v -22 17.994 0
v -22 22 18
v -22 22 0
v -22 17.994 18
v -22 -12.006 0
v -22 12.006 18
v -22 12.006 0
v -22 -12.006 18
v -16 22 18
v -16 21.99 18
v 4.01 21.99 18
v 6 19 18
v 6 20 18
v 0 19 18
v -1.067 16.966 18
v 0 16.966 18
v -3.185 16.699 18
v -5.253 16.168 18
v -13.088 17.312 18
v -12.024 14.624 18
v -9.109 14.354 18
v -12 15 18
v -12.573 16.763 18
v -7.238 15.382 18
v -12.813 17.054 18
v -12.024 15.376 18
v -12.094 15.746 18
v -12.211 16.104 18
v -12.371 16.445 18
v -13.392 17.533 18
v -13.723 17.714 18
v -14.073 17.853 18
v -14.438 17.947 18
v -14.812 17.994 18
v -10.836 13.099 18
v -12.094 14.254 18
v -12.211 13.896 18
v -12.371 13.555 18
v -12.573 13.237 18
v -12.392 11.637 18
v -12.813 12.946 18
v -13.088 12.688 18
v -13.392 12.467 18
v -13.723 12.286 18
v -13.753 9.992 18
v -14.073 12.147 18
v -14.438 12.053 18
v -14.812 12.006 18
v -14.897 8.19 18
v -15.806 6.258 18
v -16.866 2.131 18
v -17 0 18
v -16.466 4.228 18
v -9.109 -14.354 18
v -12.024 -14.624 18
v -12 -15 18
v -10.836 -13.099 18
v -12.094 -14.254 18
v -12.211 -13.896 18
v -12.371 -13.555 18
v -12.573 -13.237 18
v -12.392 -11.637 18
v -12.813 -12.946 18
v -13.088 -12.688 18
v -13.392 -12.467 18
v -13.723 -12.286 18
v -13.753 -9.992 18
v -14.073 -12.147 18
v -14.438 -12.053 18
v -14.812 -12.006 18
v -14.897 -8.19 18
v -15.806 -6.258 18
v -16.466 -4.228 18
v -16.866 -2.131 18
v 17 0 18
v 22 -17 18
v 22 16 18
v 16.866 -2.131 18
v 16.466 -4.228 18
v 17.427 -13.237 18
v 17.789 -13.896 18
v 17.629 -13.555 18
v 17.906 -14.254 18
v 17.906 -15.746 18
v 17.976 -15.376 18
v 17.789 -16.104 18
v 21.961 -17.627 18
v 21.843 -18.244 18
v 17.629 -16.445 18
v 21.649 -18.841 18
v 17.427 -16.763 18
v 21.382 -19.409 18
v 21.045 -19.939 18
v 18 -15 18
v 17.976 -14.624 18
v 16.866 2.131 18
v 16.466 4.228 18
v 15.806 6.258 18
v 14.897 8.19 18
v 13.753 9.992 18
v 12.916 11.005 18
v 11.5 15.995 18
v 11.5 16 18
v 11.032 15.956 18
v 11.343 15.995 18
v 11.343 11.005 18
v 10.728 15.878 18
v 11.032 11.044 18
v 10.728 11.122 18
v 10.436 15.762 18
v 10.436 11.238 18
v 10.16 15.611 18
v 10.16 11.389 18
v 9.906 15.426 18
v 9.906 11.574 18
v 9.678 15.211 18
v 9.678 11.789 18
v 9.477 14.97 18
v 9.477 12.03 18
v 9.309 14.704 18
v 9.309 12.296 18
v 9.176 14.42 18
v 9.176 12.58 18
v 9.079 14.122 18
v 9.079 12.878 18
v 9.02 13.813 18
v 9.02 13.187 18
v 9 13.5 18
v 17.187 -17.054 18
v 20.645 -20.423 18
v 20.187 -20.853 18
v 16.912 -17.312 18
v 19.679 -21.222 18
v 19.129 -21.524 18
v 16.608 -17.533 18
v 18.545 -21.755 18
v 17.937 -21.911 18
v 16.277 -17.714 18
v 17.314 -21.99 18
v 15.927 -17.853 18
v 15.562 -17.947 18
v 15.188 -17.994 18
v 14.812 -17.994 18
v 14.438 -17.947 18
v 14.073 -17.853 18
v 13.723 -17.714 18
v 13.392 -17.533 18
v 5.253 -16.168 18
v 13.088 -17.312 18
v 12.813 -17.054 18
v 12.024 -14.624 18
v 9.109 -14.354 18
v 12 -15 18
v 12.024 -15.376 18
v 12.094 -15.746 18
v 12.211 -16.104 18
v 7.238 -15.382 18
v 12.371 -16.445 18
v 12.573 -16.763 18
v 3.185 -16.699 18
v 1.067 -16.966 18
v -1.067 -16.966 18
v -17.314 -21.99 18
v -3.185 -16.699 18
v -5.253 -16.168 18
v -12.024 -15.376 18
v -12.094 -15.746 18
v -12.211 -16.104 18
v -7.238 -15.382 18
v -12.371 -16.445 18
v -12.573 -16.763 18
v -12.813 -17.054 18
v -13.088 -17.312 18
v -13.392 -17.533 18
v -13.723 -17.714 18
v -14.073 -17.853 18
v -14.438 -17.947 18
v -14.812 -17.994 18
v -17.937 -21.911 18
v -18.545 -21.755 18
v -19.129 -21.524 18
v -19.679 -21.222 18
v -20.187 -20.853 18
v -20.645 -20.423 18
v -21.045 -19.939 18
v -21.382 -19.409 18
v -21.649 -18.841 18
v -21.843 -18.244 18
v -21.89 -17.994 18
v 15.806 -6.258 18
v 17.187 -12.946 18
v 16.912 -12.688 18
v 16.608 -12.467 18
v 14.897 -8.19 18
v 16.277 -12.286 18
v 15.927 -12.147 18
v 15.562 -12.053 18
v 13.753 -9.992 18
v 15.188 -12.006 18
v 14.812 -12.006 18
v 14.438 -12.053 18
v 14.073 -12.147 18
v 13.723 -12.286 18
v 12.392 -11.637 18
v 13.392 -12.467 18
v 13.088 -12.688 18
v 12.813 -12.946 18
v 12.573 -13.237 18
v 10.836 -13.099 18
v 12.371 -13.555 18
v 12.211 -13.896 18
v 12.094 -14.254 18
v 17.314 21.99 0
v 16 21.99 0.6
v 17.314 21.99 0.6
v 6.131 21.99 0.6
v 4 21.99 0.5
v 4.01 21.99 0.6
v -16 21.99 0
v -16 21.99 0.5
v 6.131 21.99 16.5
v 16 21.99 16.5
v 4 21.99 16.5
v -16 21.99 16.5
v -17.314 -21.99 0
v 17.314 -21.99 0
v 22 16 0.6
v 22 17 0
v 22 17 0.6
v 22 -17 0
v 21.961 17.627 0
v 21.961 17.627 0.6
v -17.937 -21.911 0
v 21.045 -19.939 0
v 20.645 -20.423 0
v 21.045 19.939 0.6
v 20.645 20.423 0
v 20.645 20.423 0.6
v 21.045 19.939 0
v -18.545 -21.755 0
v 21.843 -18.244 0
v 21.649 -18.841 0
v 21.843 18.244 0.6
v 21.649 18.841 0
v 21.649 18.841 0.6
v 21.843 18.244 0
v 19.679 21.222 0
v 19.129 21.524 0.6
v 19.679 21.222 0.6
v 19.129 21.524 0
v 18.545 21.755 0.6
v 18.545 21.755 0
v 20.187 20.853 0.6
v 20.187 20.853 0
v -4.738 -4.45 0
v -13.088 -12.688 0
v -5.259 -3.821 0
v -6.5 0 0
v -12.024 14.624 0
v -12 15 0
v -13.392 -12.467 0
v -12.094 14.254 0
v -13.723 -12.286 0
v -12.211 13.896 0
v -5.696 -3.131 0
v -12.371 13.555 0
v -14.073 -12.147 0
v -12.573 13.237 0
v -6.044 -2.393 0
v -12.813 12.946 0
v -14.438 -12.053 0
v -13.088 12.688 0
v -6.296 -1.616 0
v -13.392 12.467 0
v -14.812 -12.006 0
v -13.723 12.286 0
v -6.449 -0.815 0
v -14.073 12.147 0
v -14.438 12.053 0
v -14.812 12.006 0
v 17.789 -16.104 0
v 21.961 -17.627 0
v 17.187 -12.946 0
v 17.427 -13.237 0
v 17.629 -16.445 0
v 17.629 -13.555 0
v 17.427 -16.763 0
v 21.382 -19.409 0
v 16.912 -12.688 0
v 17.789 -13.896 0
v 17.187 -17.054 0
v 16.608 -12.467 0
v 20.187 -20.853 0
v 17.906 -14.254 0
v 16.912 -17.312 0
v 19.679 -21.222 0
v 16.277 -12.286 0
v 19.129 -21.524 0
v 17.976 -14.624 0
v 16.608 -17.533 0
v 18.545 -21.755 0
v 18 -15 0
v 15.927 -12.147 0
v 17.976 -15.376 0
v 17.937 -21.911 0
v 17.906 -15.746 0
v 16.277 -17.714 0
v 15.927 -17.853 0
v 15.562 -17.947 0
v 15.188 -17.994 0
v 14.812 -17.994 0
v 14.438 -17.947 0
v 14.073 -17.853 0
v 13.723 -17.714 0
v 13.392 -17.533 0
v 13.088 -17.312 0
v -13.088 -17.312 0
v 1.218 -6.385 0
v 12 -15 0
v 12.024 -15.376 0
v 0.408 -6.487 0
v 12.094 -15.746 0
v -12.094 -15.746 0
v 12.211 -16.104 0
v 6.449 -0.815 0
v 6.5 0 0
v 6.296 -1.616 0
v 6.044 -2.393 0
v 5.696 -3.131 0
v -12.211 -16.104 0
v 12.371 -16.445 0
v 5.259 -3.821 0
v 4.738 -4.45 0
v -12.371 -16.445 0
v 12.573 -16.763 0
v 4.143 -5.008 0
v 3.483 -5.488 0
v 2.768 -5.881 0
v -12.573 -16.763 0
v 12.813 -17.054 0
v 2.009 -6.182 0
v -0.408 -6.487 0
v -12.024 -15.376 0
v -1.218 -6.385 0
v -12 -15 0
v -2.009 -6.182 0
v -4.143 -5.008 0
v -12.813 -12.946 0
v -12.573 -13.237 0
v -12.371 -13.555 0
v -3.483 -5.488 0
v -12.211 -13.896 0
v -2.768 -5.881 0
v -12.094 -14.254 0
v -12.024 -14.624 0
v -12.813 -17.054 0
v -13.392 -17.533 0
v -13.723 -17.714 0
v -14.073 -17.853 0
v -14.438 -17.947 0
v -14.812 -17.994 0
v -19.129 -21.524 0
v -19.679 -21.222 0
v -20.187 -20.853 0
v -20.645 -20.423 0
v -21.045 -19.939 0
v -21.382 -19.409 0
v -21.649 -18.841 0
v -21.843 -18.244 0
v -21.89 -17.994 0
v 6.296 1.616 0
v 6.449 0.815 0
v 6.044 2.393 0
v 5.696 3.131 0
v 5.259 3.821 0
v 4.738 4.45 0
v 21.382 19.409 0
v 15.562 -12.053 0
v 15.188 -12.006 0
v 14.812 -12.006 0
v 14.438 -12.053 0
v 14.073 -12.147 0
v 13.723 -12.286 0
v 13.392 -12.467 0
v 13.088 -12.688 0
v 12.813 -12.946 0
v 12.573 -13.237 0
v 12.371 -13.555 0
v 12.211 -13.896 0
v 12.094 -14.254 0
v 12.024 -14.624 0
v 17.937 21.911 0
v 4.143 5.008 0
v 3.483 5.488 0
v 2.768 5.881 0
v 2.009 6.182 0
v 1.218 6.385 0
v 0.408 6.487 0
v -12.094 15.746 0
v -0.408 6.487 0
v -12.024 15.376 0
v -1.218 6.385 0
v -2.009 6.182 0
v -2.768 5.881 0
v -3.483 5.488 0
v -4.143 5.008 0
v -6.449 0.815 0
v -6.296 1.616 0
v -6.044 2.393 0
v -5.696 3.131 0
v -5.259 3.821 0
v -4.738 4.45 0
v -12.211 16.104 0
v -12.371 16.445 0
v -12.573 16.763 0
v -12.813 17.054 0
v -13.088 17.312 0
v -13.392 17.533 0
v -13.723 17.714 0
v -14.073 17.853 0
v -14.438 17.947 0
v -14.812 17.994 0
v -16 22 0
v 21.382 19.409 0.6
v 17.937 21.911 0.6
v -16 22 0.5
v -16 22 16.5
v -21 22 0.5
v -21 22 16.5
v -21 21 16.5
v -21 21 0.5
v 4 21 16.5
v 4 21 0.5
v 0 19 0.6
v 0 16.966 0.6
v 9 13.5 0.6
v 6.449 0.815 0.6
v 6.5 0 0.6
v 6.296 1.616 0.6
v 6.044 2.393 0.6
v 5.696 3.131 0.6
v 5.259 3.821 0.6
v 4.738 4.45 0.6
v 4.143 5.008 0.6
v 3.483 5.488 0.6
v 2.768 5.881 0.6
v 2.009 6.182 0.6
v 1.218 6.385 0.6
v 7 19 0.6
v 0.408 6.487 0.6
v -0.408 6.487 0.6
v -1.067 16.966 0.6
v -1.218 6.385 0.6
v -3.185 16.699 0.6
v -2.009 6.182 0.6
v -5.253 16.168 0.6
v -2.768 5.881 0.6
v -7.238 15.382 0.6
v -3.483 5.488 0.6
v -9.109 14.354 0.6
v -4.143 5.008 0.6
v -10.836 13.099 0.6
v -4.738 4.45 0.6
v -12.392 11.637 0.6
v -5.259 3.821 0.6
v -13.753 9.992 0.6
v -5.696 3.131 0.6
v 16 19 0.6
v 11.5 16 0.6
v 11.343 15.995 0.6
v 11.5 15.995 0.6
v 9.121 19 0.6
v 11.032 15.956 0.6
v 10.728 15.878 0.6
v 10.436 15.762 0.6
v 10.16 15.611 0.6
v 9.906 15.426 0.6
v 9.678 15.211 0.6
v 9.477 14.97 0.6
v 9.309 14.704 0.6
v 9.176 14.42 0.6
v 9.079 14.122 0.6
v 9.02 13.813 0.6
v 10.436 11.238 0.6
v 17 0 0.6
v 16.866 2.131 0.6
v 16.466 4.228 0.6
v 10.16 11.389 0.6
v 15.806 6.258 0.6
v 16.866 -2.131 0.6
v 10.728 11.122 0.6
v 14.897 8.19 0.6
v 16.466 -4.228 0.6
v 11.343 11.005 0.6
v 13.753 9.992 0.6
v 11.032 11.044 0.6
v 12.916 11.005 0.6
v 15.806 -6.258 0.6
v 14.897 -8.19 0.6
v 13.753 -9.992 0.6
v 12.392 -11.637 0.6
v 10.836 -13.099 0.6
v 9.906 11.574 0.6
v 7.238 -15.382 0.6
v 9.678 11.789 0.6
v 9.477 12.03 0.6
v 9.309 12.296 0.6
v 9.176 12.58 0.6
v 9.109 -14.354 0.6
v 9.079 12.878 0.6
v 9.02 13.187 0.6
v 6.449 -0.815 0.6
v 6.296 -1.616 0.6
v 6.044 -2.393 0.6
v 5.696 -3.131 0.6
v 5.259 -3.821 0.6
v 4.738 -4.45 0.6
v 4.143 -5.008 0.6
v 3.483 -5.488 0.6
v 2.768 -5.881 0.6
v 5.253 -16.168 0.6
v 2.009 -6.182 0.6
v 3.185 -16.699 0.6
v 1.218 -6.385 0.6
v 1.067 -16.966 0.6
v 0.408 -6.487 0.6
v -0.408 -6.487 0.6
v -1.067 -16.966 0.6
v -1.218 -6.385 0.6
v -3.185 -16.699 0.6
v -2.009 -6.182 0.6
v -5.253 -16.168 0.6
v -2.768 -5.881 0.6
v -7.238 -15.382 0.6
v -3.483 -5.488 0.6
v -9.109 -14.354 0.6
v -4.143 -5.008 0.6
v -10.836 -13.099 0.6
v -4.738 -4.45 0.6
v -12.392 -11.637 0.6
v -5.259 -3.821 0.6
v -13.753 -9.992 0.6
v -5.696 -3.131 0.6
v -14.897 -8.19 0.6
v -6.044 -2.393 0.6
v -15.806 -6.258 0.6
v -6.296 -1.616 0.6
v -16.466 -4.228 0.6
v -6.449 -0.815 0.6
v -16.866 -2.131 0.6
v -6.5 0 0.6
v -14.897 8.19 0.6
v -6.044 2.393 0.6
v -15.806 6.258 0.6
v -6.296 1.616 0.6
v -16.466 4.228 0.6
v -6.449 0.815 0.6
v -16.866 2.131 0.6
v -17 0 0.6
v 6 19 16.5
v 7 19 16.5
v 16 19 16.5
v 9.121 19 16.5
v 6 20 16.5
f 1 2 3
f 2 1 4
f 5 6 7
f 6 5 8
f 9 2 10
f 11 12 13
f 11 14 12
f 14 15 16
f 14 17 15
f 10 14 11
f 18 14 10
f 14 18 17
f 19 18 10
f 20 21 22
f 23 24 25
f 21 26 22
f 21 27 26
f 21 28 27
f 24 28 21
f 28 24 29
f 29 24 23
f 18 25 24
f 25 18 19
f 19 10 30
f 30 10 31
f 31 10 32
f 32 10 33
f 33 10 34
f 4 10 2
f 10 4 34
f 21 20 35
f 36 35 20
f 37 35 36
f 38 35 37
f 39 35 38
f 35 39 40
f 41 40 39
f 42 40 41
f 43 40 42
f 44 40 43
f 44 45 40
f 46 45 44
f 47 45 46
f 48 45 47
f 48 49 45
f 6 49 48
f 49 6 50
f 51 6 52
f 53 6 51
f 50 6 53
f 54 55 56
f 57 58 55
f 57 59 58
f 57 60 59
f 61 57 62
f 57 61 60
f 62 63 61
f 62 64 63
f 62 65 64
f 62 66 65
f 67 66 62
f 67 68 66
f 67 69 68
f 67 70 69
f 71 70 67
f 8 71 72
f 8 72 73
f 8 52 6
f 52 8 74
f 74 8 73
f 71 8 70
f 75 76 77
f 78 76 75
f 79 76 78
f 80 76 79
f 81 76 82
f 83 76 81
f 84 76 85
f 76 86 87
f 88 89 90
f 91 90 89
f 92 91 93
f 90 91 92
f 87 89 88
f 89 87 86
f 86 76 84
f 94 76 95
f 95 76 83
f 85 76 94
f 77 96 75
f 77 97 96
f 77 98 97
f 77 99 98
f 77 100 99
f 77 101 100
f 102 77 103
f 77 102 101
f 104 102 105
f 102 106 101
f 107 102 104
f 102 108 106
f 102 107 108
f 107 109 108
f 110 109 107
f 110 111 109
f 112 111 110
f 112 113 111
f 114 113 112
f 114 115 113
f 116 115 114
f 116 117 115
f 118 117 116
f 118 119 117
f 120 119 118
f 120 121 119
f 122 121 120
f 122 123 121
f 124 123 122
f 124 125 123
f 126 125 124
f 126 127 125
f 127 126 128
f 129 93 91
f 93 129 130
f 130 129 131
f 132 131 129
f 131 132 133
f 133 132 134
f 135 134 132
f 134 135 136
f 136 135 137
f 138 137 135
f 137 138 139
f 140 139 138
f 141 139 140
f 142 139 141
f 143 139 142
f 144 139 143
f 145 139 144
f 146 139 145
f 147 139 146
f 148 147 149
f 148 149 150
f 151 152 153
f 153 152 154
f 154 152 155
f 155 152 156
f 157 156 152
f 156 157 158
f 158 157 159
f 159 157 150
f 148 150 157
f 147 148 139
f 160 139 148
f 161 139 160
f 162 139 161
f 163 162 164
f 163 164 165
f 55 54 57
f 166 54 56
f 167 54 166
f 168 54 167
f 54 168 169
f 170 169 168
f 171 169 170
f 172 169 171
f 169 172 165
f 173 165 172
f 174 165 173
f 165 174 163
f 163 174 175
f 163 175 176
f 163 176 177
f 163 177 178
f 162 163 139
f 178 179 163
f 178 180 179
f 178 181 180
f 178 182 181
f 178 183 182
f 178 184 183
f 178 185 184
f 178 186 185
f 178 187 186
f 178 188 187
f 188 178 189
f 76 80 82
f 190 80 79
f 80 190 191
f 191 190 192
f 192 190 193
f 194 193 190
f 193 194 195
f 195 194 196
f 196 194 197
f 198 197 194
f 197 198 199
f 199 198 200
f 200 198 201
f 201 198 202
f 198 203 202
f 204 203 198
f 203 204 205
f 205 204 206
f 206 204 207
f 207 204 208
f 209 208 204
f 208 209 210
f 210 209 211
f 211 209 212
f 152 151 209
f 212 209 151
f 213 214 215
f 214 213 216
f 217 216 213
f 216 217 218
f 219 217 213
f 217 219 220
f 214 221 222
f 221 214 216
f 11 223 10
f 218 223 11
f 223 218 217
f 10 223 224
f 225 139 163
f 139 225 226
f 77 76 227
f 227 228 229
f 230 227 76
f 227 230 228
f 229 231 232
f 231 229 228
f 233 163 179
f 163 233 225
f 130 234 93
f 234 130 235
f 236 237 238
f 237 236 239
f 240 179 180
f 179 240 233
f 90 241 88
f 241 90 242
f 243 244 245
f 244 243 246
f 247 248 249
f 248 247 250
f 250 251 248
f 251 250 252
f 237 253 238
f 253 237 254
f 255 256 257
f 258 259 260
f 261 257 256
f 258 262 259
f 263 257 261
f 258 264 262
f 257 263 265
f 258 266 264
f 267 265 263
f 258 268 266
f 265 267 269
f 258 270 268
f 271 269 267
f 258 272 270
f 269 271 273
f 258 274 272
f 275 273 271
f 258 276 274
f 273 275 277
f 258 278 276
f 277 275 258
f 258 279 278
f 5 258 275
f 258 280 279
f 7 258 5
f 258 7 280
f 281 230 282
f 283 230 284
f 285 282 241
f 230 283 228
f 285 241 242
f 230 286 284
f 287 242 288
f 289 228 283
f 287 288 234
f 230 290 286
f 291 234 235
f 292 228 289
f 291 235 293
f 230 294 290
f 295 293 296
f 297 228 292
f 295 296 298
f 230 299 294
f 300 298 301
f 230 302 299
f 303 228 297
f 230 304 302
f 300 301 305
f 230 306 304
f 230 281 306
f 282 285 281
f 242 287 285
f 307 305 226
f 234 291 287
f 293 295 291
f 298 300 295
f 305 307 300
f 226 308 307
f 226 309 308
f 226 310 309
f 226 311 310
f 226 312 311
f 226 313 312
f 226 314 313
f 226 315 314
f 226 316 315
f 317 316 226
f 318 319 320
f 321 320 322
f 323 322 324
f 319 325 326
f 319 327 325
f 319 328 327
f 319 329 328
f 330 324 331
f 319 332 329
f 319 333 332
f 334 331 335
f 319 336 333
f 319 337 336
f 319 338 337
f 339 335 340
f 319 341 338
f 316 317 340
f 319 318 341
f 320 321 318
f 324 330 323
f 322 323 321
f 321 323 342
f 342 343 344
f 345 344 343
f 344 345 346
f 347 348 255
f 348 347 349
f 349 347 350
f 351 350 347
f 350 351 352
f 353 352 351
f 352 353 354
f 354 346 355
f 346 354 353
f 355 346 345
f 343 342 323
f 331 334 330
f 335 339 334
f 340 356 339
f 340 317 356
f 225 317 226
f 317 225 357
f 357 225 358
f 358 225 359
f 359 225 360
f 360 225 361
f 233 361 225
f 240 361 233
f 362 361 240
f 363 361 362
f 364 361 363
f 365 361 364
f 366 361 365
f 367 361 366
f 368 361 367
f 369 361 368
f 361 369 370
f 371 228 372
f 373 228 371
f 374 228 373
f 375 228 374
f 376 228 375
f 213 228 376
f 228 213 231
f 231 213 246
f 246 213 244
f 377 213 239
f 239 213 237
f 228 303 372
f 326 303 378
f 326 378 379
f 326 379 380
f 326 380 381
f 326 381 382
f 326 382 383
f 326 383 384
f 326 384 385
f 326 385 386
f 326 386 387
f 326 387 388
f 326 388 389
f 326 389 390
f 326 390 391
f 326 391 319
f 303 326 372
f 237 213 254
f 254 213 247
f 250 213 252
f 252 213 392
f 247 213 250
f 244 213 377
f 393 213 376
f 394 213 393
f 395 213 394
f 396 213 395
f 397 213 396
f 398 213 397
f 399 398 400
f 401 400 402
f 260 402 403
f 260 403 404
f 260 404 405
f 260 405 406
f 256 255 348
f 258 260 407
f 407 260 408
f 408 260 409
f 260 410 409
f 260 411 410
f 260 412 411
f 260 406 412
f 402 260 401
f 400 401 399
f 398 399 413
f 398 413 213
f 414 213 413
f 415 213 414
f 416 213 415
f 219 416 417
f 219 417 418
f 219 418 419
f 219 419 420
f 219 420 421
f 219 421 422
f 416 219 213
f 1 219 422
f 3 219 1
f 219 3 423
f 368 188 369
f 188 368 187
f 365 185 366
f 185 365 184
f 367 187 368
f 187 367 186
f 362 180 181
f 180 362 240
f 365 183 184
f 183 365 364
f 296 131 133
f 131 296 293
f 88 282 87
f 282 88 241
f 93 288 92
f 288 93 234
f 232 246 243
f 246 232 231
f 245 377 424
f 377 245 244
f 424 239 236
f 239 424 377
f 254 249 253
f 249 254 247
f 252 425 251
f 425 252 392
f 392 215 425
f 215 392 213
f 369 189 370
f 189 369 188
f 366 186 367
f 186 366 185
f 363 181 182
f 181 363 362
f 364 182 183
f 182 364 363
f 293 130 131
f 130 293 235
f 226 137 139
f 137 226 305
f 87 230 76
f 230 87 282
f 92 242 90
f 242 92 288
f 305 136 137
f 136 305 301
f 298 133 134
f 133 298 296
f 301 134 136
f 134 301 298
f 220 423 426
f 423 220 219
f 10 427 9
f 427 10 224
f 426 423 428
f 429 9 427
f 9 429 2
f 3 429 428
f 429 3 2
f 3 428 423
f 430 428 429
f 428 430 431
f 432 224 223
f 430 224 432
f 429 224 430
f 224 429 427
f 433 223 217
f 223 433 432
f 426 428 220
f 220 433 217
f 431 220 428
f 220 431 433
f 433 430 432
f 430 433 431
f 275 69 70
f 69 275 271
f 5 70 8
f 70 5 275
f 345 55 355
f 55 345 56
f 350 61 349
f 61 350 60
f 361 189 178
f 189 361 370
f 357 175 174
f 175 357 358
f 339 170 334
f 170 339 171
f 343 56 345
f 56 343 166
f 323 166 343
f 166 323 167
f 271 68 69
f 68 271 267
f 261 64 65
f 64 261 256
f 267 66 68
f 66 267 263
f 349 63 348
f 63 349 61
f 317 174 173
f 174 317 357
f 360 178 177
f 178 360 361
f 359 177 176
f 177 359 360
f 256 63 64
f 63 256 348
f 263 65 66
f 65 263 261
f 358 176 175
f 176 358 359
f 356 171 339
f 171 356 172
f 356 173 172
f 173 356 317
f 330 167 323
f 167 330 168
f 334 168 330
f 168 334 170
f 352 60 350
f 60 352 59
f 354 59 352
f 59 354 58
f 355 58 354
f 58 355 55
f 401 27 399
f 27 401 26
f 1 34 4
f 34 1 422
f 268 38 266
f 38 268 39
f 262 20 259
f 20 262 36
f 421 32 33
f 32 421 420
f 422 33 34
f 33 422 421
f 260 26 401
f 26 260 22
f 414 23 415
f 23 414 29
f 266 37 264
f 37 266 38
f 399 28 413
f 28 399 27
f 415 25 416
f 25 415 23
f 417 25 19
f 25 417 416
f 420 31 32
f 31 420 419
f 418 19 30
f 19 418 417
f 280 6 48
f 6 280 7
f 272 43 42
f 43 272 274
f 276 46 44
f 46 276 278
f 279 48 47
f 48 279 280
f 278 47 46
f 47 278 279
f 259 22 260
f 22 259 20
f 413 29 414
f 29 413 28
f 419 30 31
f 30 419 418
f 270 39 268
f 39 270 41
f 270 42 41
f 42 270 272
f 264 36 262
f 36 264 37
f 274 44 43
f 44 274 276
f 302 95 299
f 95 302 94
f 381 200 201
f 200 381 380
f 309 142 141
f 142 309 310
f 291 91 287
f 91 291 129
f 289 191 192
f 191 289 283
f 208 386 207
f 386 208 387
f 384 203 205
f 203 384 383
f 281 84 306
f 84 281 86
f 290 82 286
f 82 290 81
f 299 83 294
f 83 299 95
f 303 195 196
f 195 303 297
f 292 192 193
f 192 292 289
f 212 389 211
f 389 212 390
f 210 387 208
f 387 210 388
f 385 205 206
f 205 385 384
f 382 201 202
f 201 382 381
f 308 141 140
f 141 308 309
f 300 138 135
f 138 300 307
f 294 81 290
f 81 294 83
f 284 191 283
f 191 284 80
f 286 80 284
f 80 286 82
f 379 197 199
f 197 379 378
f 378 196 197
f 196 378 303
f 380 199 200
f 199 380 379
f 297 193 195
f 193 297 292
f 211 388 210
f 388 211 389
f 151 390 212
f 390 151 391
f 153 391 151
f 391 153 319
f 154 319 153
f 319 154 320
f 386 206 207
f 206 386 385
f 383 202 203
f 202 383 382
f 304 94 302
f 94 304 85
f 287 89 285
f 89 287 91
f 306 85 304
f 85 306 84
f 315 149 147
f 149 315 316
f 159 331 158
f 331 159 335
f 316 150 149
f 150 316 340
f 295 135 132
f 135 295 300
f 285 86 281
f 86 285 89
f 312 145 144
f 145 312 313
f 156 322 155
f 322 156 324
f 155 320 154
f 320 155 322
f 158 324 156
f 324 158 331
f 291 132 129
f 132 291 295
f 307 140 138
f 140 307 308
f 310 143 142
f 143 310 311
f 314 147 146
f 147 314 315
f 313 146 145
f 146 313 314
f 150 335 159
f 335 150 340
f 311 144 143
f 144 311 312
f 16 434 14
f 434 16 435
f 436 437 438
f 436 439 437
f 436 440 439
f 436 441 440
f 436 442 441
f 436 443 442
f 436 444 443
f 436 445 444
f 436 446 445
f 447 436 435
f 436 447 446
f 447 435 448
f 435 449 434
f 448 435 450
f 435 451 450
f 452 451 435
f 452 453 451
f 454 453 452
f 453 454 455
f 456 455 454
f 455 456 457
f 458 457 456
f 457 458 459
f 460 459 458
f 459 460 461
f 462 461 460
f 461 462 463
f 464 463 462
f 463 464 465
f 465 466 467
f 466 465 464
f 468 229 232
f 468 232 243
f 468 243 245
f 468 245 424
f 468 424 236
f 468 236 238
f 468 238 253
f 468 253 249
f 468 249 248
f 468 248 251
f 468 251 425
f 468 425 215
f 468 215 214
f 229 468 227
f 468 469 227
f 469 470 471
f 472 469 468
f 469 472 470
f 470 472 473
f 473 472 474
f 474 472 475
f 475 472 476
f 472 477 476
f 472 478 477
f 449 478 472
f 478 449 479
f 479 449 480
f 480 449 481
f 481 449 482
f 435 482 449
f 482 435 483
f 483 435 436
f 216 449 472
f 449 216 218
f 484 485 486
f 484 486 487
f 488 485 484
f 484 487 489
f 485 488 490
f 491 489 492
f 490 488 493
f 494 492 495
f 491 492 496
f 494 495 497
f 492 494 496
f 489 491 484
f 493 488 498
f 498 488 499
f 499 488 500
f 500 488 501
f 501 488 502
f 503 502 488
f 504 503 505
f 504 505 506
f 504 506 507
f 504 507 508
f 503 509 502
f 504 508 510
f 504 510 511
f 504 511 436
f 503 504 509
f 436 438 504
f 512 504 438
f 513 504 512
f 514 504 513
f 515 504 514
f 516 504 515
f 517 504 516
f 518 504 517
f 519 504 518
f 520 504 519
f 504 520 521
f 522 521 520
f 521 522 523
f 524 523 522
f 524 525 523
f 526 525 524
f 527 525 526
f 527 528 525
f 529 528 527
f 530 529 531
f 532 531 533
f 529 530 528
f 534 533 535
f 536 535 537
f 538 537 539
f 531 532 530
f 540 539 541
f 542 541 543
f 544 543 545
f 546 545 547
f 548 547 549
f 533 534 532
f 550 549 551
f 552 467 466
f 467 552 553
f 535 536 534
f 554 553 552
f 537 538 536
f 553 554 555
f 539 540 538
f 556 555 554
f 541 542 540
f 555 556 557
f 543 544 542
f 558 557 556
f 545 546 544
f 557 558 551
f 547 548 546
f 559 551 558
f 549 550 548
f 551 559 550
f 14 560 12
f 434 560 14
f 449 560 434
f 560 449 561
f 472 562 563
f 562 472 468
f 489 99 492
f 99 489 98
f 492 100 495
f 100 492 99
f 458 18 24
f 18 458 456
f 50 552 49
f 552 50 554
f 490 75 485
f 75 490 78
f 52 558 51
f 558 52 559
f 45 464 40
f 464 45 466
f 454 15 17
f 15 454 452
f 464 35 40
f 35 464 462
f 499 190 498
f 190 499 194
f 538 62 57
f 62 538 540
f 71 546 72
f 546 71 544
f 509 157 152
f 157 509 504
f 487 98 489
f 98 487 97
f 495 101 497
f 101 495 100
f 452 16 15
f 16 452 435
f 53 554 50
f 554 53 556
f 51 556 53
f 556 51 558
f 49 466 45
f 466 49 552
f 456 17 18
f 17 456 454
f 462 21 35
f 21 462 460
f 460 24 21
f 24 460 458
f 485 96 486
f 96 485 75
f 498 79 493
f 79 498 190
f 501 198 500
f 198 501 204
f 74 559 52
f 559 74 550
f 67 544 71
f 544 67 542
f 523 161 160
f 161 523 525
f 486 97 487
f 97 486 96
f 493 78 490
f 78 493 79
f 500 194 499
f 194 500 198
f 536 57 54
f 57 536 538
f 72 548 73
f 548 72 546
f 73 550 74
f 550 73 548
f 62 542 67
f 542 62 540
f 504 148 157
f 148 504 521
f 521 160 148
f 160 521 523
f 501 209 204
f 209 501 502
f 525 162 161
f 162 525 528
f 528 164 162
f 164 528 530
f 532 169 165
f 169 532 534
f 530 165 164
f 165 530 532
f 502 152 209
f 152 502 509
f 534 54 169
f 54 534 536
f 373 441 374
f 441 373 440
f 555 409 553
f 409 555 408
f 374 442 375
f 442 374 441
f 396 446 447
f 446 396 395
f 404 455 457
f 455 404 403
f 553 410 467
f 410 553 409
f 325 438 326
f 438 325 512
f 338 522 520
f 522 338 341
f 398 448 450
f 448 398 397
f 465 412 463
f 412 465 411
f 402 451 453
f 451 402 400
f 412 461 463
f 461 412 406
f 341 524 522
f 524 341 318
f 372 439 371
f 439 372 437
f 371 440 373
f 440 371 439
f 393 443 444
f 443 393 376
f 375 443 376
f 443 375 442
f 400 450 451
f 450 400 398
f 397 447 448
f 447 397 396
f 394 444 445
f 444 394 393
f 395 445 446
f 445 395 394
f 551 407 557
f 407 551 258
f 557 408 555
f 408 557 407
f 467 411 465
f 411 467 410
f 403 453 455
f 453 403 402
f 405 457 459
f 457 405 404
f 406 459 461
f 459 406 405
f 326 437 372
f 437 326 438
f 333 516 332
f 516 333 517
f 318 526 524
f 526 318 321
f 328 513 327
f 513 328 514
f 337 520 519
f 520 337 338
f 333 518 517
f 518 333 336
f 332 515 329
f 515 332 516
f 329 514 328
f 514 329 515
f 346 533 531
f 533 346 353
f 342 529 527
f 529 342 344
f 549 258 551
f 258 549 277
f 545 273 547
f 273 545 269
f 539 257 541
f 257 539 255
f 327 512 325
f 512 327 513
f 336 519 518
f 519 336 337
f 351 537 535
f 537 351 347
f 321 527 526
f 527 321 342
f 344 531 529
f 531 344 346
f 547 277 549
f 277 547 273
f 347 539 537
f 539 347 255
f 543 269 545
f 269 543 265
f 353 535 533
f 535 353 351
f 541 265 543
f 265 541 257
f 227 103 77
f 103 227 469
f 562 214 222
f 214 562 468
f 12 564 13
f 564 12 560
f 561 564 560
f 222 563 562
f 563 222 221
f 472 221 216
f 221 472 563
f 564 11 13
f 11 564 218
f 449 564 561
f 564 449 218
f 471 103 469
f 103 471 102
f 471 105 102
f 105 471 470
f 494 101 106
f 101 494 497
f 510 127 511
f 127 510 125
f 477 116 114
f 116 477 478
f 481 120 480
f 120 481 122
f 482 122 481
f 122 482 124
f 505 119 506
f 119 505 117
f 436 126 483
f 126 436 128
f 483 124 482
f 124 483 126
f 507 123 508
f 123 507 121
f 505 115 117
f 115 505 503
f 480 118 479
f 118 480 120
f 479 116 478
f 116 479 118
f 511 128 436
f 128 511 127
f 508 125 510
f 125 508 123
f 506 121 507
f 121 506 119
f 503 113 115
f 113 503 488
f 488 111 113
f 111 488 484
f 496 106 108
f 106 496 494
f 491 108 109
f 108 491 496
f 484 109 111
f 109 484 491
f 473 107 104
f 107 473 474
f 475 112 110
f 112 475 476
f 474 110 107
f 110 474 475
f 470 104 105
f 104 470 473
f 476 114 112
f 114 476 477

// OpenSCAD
$fn = 50;


union() {
	difference() {
		union() {
			translate(v = [0, 0, 0]) {
				rotate(a = [0, 0, 0]) {
					hull() {
						translate(v = [-17.0000000000, 17.0000000000, 0]) {
							rotate(a = [0, 0, 0]) {
								translate(v = [0, 0, 0]) {
									rotate(a = [0, 0, 0]) {
										cylinder(h = 18, r = 5);
									}
								}
							}
						}
						translate(v = [17.0000000000, 17.0000000000, 0]) {
							rotate(a = [0, 0, 0]) {
								translate(v = [0, 0, 0]) {
									rotate(a = [0, 0, 0]) {
										cylinder(h = 18, r = 5);
									}
								}
							}
						}
						translate(v = [-17.0000000000, -17.0000000000, 0]) {
							rotate(a = [0, 0, 0]) {
								translate(v = [0, 0, 0]) {
									rotate(a = [0, 0, 0]) {
										cylinder(h = 18, r = 5);
									}
								}
							}
						}
						translate(v = [17.0000000000, -17.0000000000, 0]) {
							rotate(a = [0, 0, 0]) {
								translate(v = [0, 0, 0]) {
									rotate(a = [0, 0, 0]) {
										cylinder(h = 18, r = 5);
									}
								}
							}
						}
					}
				}
			}
			translate(v = [-22.0000000000, 16.0000000000, 0]) {
				rotate(a = [0, 0, 0]) {
					cube(size = [6, 6, 18]);
				}
			}
		}
		union() {
			#translate(v = [-21.0000000000, 21.0000000000, 0.5000000000]) {
				rotate(a = [0, 0, 0]) {
					cube(size = [25, 1, 16]);
				}
			}
			translate(v = [-22.5000000000, -15.0000000000, -125]) {
				rotate(a = [0, 0, 0]) {
					hull() {
						translate(v = [7.5000000000, 0, 0]) {
							rotate(a = [0, 0, 0]) {
								translate(v = [0, 0, 0]) {
									rotate(a = [0, 0, 0]) {
										cylinder(h = 250, r = 3.0000000000);
									}
								}
							}
						}
						translate(v = [-7.5000000000, 0, 0]) {
							rotate(a = [0, 0, 0]) {
								translate(v = [0, 0, 0]) {
									rotate(a = [0, 0, 0]) {
										cylinder(h = 250, r = 3.0000000000);
									}
								}
							}
						}
					}
				}
			}
			translate(v = [-22.5000000000, 15.0000000000, -125]) {
				rotate(a = [0, 0, 0]) {
					hull() {
						translate(v = [7.5000000000, 0, 0]) {
							rotate(a = [0, 0, 0]) {
								translate(v = [0, 0, 0]) {
									rotate(a = [0, 0, 0]) {
										cylinder(h = 250, r = 3.0000000000);
									}
								}
							}
						}
						translate(v = [-7.5000000000, 0, 0]) {
							rotate(a = [0, 0, 0]) {
								translate(v = [0, 0, 0]) {
									rotate(a = [0, 0, 0]) {
										cylinder(h = 250, r = 3.0000000000);
									}
								}
							}
						}
					}
				}
			}
			translate(v = [15.0000000000, -15.0000000000, -125.0000000000]) {
				rotate(a = [0, 0, 0]) {
					cylinder(h = 250, r = 3.0000000000);
				}
			}
			translate(v = [0.0000000000, 11.0000000000, 0.6000000000]) {
				rotate(a = [0, 0, 0]) {
					cube(size = [11, 8, 20.4000000000]);
				}
			}
			translate(v = [0, 0, 0.6000000000]) {
				rotate(a = [0, 0, 0]) {
					cylinder(h = 20.4000000000, r = 17.0000000000);
				}
			}
			translate(v = [0, 0, -9.0000000000]) {
				rotate(a = [0, 0, 0]) {
					cylinder(h = 18, r = 6.5000000000);
				}
			}
			translate(v = [0.0000000000, 16.0000000000, 0.6000000000]) {
				rotate(a = [0, 0, 0]) {
					cube(size = [22.0000000000, 3, 20.4000000000]);
				}
			}
			translate(v = [16.0000000000, 16.0000000000, 0.6000000000]) {
				rotate(a = [0, 0, 0]) {
					cube(size = [6, 6, 20.4000000000]);
				}
			}
			translate(v = [6.0000000000, 16.0000000000, 16.5000000000]) {
				rotate(a = [0, 0, 0]) {
					cube(size = [16, 6, 1.5000000000]);
				}
			}
			translate(v = [3.2500000000, 22.7500000000, 0.6000000000]) {
				rotate(a = [0, 0, -45]) {
					cube(size = [7.5000000000, 1.5000000000, 20.4000000000]);
				}
			}
			translate(v = [2.5000000000, 11.0000000000, 0.6000000000]) {
				rotate(a = [0, 0, 0]) {
					cube(size = [9.0000000000, 5, 17.4000000000]);
				}
			}
		}
	}
	union() {
		translate(v = [14, 13.5000000000, 0]) {
			rotate(a = [0, 0, 0]) {
				hull() {
					translate(v = [2.5000000000, 0, 0]) {
						rotate(a = [0, 0, 0]) {
							#translate(v = [0, 0, 0]) {
								rotate(a = [0, 0, 0]) {
									cylinder(h = 18, r = 2.5000000000);
								}
							}
						}
					}
					translate(v = [-2.5000000000, 0, 0]) {
						rotate(a = [0, 0, 0]) {
							#translate(v = [0, 0, 0]) {
								rotate(a = [0, 0, 0]) {
									cylinder(h = 18, r = 2.5000000000);
								}
							}
						}
					}
				}
			}
		}
	}
}
